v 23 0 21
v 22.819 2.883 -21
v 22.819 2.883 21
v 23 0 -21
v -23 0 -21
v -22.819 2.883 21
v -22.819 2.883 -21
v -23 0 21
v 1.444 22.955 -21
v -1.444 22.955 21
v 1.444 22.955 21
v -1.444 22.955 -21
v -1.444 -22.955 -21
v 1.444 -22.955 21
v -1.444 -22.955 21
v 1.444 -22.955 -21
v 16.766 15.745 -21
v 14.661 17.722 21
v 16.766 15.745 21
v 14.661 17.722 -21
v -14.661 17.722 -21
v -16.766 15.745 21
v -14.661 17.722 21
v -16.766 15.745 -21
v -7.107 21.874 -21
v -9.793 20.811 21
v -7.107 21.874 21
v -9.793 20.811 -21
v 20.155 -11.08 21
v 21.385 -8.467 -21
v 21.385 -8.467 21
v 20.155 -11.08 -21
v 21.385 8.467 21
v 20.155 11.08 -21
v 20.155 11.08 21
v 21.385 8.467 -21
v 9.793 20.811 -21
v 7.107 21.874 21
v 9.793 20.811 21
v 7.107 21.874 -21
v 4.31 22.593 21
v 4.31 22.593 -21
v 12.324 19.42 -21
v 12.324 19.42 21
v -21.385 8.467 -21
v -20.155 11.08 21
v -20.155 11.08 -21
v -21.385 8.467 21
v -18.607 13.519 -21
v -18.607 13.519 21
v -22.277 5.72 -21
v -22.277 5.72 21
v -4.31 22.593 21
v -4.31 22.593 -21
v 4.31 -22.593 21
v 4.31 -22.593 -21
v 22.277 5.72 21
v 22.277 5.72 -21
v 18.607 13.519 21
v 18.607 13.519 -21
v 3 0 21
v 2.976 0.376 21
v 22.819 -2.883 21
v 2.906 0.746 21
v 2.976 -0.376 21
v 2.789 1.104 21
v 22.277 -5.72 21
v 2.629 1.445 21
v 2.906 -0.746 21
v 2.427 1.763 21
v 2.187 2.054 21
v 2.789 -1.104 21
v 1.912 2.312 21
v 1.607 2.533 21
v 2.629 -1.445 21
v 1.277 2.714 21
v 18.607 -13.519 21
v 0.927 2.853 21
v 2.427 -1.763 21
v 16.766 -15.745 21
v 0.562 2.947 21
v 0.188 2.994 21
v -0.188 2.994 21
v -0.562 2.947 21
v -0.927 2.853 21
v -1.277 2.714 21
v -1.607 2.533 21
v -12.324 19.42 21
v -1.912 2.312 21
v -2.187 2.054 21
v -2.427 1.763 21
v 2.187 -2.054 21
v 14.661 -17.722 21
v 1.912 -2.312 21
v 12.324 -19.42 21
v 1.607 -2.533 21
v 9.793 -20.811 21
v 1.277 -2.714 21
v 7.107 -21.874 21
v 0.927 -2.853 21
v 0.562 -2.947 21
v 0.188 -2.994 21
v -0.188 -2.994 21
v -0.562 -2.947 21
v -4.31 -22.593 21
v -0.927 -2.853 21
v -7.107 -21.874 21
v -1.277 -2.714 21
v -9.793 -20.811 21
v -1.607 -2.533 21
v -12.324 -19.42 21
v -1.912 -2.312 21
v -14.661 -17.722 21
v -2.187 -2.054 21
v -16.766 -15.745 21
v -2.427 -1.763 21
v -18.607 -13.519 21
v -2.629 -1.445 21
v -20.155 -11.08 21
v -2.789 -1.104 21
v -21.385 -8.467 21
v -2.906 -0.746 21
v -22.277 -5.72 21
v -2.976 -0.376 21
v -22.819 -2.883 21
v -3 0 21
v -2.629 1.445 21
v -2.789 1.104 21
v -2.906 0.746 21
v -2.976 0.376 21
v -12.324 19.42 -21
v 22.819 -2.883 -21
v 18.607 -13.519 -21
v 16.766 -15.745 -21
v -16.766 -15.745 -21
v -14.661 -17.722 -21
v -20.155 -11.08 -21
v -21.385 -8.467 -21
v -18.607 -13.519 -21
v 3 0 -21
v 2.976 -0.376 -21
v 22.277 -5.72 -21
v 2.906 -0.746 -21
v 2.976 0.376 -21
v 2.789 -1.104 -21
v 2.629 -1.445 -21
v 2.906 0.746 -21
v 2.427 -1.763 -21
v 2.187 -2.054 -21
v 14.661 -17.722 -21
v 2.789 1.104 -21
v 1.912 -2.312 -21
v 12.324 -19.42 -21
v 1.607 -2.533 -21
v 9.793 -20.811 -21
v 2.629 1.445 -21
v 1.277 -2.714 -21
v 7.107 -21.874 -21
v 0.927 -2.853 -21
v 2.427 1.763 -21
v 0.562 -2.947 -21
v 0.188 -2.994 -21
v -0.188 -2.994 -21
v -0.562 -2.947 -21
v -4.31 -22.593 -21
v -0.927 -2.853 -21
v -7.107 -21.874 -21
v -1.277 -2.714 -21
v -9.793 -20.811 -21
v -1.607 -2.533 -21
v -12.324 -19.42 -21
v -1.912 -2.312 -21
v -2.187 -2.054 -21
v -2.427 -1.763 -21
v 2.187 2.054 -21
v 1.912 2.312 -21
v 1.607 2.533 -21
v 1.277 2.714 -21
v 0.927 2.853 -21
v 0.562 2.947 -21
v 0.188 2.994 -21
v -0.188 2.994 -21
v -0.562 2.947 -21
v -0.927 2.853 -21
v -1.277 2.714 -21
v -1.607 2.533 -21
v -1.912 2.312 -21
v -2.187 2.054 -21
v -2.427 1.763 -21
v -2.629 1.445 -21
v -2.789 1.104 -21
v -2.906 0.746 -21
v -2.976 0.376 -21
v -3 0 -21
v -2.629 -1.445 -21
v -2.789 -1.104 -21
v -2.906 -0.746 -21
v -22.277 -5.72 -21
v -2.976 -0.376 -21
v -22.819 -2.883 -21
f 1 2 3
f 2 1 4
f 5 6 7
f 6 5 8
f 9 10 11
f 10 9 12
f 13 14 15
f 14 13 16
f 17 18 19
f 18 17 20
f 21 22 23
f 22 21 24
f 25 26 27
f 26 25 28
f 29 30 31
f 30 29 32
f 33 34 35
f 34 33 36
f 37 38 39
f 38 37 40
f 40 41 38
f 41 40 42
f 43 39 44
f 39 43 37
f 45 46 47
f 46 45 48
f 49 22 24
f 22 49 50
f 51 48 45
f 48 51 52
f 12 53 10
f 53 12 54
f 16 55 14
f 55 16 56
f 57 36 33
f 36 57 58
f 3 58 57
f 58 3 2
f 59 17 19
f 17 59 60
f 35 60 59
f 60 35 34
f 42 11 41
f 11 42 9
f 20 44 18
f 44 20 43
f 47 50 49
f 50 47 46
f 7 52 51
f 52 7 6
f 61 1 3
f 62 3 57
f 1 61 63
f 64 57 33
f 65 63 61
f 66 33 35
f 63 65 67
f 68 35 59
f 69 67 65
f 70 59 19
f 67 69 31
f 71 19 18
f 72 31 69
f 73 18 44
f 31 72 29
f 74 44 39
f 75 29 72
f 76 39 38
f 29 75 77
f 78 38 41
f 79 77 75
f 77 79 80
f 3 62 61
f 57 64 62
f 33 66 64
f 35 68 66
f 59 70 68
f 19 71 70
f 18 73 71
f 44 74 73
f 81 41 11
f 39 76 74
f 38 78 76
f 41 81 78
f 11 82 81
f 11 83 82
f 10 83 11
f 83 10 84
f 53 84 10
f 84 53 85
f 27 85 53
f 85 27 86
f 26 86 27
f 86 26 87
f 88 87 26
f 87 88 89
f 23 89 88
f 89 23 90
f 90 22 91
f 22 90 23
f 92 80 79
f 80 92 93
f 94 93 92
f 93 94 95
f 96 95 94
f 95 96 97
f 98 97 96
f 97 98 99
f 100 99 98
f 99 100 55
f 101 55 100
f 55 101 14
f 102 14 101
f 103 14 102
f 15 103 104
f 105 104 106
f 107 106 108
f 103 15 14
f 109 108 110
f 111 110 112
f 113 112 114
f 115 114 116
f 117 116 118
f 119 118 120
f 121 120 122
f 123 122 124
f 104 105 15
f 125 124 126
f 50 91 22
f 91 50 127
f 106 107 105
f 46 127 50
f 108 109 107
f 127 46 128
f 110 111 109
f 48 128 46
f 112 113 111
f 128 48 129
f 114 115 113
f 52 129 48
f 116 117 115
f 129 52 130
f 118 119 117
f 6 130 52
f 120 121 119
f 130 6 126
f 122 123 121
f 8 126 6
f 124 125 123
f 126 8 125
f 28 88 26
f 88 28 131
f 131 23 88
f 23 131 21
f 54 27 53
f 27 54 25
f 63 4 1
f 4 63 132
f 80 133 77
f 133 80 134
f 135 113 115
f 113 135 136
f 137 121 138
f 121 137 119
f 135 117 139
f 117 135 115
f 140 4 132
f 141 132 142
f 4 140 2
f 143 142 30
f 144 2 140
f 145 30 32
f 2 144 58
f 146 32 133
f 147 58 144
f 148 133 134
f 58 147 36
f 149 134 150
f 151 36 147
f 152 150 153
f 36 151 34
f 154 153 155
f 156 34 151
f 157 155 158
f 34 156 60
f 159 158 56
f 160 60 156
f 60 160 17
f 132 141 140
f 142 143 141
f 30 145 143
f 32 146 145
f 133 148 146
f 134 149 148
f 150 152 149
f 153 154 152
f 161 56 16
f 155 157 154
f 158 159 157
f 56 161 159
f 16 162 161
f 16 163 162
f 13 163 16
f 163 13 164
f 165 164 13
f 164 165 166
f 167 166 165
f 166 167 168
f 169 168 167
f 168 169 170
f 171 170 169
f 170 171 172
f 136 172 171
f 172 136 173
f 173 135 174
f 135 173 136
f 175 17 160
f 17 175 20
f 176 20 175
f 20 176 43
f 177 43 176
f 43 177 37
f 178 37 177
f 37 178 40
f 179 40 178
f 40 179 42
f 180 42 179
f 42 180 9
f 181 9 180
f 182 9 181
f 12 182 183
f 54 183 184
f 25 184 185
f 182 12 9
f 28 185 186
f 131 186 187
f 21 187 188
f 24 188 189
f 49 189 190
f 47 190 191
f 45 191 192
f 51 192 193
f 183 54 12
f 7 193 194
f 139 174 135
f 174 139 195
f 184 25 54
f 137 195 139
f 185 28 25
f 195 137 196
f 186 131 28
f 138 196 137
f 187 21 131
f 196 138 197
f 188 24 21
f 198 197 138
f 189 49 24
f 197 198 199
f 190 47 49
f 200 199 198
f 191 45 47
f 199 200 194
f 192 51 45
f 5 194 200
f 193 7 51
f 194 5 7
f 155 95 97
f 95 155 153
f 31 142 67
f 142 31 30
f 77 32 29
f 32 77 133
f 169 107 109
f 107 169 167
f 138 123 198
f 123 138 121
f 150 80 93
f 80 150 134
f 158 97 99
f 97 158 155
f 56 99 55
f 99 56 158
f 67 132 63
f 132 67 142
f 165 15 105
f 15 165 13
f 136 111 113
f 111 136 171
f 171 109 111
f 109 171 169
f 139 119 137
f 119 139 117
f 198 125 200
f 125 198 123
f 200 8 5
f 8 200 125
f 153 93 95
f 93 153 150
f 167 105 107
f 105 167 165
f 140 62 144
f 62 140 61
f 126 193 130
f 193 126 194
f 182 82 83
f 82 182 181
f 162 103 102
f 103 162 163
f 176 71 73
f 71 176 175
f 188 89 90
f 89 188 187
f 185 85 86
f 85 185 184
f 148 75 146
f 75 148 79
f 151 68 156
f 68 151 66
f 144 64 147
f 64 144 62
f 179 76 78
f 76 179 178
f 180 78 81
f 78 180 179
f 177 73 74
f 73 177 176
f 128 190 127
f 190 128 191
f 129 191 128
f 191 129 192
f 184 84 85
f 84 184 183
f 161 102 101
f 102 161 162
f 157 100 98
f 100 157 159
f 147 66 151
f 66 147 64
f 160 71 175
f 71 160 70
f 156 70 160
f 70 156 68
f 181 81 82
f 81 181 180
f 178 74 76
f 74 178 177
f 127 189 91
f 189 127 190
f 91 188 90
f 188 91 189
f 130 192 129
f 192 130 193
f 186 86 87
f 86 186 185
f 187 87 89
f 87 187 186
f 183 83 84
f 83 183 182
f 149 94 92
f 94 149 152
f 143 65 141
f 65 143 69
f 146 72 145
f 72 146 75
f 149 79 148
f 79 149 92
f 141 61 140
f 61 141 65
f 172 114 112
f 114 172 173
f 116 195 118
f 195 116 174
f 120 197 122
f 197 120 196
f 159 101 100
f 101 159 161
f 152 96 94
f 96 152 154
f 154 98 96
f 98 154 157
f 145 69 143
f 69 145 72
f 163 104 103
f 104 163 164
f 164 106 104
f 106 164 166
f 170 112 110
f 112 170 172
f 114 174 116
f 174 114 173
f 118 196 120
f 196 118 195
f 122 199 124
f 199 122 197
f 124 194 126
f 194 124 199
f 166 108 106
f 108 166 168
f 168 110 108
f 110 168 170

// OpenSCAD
$fn = 50;


difference() {
	union() {
		translate(v = [0, 0, -21.0000000000]) {
			cylinder(h = 42, r = 23.0000000000);
		}
	}
	union() {
		translate(v = [0, 0, -100.0000000000]) {
			cylinder(h = 200, r = 3.0000000000);
		}
	}
}
